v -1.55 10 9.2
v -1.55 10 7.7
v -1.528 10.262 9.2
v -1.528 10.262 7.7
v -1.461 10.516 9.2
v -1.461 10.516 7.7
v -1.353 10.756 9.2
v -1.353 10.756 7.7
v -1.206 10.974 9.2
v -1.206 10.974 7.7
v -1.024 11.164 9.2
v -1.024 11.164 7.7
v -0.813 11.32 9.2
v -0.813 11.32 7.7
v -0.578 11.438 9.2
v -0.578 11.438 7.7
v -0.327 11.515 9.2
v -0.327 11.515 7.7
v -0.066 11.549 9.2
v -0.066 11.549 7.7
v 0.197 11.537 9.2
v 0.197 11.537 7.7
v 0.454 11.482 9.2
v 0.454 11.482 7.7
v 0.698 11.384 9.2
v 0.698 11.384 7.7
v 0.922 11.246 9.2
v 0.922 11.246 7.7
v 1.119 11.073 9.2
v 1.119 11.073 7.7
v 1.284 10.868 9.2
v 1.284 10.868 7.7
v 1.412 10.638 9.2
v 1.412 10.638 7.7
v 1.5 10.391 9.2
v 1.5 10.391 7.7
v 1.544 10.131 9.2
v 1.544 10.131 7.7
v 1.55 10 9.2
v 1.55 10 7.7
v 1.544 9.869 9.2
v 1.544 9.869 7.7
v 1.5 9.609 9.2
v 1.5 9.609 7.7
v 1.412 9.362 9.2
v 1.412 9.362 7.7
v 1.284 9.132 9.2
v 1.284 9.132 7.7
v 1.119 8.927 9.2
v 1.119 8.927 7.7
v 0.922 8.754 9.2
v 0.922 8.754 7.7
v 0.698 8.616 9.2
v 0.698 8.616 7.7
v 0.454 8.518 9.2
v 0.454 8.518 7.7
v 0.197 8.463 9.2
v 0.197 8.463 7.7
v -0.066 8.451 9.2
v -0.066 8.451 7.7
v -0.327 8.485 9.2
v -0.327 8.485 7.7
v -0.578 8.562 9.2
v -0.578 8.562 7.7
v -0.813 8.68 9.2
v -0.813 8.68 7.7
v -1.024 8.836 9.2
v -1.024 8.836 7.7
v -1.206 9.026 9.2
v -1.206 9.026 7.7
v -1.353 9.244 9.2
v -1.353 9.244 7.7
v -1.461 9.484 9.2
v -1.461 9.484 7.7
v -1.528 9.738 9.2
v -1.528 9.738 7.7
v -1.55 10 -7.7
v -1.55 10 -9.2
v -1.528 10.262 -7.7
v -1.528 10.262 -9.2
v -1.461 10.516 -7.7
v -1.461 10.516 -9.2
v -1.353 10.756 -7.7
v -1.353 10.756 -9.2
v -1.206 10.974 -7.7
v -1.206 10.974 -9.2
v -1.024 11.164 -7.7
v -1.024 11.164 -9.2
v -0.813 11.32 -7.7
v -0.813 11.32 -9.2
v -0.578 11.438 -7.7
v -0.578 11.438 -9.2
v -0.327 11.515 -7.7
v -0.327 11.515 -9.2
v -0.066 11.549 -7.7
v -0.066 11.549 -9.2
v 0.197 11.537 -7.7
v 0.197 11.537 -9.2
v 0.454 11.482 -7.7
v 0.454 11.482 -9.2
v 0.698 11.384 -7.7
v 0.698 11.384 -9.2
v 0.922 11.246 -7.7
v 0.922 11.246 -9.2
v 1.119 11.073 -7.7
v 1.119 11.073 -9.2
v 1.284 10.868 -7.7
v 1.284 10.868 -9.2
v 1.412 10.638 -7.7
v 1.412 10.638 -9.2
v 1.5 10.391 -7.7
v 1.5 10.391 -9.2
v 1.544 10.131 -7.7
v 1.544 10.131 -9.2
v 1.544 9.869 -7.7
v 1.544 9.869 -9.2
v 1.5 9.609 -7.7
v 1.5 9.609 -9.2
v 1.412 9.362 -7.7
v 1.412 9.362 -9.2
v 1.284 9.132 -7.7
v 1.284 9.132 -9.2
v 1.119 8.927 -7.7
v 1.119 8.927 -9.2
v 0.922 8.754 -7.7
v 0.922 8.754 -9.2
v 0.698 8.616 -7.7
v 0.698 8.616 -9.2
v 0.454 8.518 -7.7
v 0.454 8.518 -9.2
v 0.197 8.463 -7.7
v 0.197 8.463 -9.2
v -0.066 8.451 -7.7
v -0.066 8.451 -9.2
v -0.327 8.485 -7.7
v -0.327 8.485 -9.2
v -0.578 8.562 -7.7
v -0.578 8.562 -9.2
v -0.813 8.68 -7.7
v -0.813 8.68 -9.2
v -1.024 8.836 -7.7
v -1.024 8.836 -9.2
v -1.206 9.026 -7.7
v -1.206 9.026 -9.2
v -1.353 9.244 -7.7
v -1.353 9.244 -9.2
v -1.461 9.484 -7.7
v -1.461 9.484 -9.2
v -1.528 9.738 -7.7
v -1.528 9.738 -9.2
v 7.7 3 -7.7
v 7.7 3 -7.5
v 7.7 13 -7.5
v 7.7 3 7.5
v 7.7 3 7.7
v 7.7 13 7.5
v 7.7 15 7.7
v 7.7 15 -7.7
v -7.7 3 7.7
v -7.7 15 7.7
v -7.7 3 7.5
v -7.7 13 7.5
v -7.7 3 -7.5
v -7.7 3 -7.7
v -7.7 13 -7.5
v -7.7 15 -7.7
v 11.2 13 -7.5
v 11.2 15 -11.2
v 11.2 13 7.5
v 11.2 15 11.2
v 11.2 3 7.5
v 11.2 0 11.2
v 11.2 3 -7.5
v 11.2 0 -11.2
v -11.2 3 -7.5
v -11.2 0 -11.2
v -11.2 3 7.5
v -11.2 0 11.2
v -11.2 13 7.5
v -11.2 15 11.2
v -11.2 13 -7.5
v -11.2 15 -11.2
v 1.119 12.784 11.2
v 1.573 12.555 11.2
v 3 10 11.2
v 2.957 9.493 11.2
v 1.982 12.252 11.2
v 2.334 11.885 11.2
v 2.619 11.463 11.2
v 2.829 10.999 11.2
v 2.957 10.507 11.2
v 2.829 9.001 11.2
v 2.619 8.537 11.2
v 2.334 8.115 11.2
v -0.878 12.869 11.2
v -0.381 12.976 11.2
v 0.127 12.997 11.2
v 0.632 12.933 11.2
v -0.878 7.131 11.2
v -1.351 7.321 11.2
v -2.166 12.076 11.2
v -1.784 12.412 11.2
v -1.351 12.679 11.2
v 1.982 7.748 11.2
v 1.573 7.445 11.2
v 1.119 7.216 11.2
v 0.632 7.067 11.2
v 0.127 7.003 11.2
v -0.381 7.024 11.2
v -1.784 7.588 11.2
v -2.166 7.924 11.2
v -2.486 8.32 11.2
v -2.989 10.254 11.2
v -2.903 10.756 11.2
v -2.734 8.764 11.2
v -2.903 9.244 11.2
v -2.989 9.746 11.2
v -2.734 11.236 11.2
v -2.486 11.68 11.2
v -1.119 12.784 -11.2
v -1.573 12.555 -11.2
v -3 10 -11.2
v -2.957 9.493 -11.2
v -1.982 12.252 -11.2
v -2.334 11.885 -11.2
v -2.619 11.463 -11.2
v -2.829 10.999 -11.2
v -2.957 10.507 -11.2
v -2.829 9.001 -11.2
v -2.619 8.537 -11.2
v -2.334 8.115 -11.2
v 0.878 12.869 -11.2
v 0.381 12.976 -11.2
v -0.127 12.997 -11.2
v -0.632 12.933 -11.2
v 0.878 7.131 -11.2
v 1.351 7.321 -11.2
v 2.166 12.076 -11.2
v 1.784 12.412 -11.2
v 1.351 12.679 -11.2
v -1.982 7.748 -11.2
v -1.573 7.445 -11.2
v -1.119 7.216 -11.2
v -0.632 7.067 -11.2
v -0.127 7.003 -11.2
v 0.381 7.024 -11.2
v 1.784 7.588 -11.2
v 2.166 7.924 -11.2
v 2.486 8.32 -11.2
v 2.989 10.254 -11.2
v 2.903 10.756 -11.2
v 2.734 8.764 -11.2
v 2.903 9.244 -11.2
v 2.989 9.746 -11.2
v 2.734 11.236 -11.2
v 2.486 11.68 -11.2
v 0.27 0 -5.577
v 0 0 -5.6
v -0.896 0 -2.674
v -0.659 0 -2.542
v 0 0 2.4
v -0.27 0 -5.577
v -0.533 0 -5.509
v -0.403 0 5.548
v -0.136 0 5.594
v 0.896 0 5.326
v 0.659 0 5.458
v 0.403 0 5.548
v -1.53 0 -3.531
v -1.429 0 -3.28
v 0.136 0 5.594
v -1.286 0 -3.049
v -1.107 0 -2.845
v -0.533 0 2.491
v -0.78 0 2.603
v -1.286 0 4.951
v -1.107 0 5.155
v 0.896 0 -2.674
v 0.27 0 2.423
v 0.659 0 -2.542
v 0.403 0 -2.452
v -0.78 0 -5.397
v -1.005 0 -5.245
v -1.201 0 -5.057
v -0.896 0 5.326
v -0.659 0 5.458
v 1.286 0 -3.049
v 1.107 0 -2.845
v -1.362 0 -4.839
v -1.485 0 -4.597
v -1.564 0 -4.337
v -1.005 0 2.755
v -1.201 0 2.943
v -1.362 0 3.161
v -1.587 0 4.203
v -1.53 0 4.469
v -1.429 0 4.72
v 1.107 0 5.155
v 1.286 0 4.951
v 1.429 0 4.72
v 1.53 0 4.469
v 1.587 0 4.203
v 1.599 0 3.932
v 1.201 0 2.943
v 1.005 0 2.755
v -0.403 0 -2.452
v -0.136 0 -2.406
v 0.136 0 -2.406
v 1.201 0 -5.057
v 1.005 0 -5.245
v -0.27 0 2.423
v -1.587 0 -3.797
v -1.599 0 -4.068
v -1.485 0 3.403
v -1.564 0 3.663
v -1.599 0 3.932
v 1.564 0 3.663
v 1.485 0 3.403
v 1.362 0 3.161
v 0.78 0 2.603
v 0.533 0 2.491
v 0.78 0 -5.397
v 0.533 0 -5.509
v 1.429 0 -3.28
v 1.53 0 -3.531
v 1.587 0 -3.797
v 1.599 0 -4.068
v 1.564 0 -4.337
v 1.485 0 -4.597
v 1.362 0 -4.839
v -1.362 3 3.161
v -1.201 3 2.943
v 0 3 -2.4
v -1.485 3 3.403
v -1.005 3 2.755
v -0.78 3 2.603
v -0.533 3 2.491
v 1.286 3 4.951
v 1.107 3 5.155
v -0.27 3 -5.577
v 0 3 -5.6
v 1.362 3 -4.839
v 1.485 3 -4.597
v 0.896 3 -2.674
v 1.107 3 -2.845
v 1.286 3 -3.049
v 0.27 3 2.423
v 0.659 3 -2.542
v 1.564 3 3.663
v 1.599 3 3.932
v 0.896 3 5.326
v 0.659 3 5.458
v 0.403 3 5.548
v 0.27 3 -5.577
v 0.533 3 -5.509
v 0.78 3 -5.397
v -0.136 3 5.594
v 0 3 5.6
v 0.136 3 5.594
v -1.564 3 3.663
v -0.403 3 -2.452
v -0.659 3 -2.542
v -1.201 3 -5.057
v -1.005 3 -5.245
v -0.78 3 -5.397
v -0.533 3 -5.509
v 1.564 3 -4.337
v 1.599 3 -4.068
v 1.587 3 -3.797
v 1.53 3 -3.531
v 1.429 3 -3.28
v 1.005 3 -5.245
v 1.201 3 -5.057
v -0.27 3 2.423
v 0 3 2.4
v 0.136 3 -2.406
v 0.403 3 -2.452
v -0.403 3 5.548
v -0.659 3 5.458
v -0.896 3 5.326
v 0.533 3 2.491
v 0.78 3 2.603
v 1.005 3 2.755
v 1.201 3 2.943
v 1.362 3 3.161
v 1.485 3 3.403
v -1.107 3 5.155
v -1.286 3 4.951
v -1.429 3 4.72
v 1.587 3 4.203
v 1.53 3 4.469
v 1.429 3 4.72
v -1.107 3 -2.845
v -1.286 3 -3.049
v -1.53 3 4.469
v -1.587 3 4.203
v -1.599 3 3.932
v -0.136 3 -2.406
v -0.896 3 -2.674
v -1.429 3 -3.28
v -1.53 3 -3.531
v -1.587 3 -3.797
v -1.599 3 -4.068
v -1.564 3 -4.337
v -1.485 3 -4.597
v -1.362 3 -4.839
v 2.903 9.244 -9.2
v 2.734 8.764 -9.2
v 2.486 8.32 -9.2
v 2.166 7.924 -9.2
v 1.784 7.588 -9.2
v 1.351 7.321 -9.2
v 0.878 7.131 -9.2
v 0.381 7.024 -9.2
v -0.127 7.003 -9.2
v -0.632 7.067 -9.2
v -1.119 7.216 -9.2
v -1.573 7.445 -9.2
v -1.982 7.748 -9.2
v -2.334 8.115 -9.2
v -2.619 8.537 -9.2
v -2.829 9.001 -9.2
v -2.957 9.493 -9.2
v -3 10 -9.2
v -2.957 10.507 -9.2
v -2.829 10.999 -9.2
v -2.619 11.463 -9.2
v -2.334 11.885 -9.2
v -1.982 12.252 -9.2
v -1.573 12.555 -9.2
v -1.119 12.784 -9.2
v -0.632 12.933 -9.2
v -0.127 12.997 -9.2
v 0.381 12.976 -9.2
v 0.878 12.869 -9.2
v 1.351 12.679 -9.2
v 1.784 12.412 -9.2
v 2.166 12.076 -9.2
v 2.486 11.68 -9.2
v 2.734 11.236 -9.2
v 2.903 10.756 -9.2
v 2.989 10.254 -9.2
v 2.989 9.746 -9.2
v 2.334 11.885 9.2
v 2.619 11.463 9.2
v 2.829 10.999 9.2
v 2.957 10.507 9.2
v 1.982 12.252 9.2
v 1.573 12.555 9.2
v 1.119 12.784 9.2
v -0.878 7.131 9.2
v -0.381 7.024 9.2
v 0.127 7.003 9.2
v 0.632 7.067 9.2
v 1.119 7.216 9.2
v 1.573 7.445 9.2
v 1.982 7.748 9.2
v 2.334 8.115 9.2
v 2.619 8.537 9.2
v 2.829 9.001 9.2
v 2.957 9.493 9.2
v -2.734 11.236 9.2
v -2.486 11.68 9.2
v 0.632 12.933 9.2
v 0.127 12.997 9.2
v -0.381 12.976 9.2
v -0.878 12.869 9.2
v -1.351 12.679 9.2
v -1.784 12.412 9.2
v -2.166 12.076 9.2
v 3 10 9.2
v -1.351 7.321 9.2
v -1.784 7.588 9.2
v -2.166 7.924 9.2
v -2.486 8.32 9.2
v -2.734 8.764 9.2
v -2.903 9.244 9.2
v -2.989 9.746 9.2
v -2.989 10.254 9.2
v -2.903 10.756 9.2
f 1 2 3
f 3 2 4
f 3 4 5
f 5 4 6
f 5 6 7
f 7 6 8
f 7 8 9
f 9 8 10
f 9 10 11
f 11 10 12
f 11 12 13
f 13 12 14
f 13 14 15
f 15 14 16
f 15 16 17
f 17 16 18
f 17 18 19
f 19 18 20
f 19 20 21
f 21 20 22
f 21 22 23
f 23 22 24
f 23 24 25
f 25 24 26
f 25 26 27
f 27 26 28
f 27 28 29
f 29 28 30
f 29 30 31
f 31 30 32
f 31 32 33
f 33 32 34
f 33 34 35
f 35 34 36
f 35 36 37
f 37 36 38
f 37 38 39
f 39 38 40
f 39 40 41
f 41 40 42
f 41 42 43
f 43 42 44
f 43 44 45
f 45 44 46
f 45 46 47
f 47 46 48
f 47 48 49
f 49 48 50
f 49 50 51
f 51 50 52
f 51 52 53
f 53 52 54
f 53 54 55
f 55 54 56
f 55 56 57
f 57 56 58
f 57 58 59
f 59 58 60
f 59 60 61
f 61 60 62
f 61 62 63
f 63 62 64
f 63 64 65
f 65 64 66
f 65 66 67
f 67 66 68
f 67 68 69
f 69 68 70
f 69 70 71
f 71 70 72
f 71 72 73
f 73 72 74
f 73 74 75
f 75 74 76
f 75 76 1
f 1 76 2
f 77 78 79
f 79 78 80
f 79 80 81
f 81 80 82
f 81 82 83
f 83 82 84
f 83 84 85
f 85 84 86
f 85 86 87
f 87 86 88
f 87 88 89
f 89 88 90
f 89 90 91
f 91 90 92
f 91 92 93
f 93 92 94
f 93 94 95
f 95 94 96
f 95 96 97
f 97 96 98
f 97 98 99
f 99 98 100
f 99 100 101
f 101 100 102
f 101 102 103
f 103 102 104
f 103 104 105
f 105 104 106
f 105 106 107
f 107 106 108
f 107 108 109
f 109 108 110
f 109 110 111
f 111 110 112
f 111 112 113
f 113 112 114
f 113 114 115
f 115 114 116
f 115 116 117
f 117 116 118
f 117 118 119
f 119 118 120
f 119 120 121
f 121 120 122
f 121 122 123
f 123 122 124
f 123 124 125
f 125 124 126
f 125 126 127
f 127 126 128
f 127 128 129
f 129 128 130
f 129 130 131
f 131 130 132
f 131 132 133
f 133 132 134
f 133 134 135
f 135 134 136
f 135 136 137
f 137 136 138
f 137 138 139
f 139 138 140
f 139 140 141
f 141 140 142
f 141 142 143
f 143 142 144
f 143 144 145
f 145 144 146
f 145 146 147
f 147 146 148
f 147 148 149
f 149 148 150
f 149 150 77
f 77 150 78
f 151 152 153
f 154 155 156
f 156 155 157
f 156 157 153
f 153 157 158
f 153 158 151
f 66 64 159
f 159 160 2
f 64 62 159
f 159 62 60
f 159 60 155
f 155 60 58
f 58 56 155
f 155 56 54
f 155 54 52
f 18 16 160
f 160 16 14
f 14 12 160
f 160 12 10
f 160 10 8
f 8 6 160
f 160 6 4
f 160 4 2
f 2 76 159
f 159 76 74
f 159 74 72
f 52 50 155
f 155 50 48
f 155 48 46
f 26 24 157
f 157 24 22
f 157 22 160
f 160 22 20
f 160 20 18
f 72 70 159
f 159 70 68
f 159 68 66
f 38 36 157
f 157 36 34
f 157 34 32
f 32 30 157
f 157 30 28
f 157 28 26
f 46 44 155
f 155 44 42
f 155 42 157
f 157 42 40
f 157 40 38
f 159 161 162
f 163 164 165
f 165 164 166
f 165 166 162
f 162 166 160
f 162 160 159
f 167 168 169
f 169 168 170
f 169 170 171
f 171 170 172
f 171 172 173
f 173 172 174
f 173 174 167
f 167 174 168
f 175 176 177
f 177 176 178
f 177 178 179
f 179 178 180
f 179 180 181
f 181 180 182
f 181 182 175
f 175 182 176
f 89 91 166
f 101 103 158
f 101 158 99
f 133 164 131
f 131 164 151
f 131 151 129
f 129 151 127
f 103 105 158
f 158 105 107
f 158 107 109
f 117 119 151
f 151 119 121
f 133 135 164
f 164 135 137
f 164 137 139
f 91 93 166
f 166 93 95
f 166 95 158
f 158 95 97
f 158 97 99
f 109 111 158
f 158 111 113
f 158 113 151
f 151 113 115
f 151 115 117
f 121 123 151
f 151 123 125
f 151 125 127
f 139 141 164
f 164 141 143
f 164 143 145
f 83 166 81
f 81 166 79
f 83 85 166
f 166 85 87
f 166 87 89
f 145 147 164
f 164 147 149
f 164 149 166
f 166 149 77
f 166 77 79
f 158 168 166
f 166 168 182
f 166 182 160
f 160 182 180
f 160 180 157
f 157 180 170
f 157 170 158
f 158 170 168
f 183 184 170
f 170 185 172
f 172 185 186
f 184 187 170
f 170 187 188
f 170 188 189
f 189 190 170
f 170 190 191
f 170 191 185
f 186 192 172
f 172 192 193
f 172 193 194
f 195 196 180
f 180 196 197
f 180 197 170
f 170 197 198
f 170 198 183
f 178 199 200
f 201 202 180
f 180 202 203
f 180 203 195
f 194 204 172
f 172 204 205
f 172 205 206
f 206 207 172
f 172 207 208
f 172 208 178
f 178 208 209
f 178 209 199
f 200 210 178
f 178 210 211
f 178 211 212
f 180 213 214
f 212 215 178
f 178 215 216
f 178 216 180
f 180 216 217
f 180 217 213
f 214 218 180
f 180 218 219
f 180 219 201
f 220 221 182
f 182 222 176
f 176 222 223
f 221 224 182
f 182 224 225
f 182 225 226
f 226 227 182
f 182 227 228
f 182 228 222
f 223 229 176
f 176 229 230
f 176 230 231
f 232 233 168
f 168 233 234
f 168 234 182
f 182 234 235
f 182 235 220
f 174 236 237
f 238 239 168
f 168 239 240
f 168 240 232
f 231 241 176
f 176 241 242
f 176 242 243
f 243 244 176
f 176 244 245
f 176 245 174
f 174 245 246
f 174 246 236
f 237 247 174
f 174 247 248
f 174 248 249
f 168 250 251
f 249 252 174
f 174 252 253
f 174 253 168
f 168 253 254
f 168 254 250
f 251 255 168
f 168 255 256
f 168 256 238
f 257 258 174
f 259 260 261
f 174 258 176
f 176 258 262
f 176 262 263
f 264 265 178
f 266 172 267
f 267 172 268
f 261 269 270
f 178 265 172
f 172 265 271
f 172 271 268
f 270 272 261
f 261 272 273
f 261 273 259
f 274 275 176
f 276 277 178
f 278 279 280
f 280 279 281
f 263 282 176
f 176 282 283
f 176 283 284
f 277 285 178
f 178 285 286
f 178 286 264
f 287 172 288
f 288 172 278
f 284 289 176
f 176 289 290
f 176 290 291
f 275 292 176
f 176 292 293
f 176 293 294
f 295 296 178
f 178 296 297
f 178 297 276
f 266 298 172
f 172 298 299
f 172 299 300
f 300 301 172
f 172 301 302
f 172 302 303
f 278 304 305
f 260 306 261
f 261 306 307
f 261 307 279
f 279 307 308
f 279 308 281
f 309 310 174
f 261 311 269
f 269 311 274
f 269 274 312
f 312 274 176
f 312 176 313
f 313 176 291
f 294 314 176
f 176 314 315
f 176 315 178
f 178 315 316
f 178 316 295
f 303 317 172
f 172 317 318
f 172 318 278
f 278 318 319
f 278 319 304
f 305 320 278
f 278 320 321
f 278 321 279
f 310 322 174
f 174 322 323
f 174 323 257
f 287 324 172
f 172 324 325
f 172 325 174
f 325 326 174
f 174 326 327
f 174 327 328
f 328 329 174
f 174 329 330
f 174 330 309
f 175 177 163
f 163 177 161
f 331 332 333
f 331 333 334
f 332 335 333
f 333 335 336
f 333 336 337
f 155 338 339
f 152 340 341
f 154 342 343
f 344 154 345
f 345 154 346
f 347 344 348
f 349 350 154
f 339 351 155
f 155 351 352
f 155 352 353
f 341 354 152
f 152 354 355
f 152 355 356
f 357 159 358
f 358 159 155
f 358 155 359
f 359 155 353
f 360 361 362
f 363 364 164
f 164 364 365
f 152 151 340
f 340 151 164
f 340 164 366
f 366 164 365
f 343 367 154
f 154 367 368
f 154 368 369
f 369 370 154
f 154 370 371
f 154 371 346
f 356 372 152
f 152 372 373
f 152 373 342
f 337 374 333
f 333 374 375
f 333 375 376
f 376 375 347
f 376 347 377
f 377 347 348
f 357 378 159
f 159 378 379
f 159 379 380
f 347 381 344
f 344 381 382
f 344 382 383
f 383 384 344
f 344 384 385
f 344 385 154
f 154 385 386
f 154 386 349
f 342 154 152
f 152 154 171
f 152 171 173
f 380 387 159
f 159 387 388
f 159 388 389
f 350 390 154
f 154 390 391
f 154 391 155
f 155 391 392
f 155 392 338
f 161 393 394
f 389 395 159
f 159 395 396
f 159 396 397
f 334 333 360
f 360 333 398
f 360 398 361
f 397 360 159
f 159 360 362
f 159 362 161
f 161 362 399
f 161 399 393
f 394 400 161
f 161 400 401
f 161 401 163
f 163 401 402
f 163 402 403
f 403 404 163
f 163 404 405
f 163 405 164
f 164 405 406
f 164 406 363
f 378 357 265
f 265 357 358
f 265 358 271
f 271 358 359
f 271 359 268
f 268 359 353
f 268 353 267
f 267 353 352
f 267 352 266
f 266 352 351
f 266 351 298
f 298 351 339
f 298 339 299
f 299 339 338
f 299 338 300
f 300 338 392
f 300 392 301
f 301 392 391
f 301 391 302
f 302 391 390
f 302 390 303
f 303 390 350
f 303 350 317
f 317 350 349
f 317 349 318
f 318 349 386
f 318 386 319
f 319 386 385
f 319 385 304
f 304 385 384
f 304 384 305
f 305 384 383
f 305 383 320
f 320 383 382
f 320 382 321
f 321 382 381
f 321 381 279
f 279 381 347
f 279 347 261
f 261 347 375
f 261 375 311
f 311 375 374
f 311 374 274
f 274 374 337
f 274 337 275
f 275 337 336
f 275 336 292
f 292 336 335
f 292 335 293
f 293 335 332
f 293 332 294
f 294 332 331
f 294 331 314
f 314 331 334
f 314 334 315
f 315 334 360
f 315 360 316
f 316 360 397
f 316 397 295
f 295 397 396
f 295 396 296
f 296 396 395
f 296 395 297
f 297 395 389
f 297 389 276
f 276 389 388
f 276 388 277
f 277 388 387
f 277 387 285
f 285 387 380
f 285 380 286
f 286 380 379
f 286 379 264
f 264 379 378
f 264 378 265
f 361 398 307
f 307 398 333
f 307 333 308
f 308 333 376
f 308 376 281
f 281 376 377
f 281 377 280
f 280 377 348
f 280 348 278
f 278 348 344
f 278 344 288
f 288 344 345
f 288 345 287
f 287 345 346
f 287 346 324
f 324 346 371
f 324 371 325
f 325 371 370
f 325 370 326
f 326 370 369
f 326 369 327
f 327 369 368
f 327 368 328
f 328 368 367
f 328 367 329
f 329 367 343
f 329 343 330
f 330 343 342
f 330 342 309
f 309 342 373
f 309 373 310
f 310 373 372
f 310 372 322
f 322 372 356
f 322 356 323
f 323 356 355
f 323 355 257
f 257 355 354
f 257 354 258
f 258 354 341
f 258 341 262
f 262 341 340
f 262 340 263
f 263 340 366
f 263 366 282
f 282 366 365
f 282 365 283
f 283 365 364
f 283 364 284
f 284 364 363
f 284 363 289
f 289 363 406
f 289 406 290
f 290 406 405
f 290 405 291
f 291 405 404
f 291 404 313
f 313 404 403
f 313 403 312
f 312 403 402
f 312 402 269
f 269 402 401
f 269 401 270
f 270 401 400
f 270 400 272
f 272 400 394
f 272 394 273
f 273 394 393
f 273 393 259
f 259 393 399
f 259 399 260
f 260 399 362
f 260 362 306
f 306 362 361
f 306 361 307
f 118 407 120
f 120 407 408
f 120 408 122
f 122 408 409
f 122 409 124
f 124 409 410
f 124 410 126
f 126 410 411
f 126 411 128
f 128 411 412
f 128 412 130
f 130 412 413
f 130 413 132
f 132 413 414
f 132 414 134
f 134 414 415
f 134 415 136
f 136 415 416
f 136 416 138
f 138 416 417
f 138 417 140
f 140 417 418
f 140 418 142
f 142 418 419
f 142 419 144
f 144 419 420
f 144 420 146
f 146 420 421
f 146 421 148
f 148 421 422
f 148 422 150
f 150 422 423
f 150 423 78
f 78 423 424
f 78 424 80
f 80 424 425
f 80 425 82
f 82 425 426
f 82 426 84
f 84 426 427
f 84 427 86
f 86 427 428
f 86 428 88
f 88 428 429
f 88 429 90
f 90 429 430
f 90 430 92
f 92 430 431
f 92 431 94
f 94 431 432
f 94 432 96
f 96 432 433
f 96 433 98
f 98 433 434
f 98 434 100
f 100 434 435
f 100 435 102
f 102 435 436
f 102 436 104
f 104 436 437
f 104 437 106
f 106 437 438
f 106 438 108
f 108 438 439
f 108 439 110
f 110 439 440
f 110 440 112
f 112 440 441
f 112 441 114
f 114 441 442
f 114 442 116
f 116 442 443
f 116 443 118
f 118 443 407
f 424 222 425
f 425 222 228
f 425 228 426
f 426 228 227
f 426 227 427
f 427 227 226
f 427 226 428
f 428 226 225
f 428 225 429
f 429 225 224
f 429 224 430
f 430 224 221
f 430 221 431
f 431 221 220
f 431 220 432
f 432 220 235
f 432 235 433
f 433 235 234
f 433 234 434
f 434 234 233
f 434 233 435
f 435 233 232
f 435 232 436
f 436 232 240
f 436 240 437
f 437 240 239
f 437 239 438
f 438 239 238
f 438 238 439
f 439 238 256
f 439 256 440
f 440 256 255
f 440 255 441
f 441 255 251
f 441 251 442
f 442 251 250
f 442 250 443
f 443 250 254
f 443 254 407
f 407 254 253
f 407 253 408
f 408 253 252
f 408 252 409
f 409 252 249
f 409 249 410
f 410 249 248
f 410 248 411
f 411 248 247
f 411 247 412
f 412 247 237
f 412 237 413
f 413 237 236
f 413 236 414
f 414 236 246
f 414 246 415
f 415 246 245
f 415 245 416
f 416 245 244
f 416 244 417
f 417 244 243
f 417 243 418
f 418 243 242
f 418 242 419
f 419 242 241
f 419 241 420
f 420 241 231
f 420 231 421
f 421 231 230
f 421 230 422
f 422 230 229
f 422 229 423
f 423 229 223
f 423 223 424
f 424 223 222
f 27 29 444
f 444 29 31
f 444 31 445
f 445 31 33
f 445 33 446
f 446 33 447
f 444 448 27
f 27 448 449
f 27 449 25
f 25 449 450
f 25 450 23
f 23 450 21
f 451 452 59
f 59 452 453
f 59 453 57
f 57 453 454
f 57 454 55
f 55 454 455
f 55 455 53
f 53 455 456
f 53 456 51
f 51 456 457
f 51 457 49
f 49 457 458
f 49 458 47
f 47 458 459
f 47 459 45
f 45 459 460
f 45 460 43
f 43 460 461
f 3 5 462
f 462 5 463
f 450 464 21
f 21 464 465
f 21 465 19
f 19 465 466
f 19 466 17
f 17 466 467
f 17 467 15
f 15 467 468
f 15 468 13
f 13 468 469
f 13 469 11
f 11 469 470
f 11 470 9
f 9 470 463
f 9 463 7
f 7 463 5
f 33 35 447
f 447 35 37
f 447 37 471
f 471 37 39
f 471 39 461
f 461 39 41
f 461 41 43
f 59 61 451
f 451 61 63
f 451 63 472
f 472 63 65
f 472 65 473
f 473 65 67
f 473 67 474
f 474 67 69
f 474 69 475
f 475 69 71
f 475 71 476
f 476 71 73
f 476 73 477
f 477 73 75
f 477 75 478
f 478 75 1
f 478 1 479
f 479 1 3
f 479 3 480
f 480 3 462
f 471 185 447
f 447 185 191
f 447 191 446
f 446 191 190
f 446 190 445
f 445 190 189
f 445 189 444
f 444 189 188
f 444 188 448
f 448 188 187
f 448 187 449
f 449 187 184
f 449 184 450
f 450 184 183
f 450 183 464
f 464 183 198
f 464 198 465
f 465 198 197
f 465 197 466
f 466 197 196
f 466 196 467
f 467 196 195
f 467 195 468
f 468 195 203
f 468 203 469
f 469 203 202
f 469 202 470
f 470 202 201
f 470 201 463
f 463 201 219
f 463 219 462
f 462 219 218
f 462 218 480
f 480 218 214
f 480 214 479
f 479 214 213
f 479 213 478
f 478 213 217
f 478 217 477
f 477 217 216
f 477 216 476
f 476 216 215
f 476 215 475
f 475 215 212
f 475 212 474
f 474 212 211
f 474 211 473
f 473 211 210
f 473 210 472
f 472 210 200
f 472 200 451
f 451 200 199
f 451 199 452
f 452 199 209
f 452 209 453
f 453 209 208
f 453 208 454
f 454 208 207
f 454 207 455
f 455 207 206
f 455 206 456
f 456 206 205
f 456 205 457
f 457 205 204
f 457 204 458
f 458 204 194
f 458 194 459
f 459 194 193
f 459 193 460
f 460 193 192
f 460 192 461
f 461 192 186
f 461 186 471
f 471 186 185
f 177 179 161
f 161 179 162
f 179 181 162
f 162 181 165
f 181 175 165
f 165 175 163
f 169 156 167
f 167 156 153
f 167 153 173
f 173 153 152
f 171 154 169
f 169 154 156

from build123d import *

# Parameters (mm, degrees)
SKETCH_1_W          = 15.4
SKETCH_1_H          = 22.4
EXTRUDE_2_DEPTH     = 3
SKETCH_1_4_W        = 15.4
SKETCH_1_4_H        = 3.5
EXTRUDE_3_DEPTH     = 5
EXTRUDE_3_2_DEPTH   = 5
SKETCH_1_5_W        = 22.4
SKETCH_1_5_H        = 22.4
SKETCH_1_5_W_2      = 15.4
SKETCH_1_5_H_2      = 15.4
EXTRUDE_4_DEPTH     = 15
SKETCH_3_R          = 1.55
CUT_EXTRUDE_2_DEPTH = 37.042752392
SKETCH_9_R          = 1.6
CUT_EXTRUDE_6_DEPTH = 22.81467396
SKETCH_10_R         = 3
CUT_EXTRUDE_7_DEPTH = 2
CUT_EXTRUDE_START   = -2
SKETCH_11_R         = 3
CUT_EXTRUDE_8_DEPTH = 2
CUT_EXTRUDE_9_DEPTH = 30.192464781


with BuildPart() as part:
    # 草图1 → 凸台-拉伸2 (new body)
    with BuildSketch(Plane(origin=(0, 0, 0), x_dir=(1, 0, 0), z_dir=(0, 1, 0))):
        Rectangle(SKETCH_1_W, SKETCH_1_H)
    extrude(amount=EXTRUDE_2_DEPTH)



with BuildPart() as body_2:
    # 草图1<4> → 凸台-拉伸3 (new body)
    with BuildSketch(Plane(origin=(0, 0, 0), x_dir=(1, 0, 0), z_dir=(0, 1, 0))):
        with Locations((0, 9.45)):
            Rectangle(SKETCH_1_4_W, SKETCH_1_4_H)
    extrude(amount=EXTRUDE_3_DEPTH)


with BuildPart() as body_3:
    # 草图1<4> → Extrude 3 2 (new body)
    with BuildSketch(Plane(origin=(0, 0, 0), x_dir=(1, 0, 0), z_dir=(0, 1, 0))):
        with Locations((0, -9.45)):
            Rectangle(SKETCH_1_4_W, SKETCH_1_4_H)
    extrude(amount=EXTRUDE_3_2_DEPTH)


with BuildPart() as part_1:
    add(part.part)

    add(body_2.part)  # 凸台-拉伸4 merges body 2

    add(body_3.part)  # 凸台-拉伸4 merges body 3
    # 草图1<5> → 凸台-拉伸4 (add)
    with BuildSketch(Plane(origin=(0, 0, 0), x_dir=(1, 0, 0), z_dir=(0, 1, 0))):
        Rectangle(SKETCH_1_5_W, SKETCH_1_5_H)
        Rectangle(SKETCH_1_5_W_2, SKETCH_1_5_H_2, mode=Mode.SUBTRACT)
    extrude(amount=EXTRUDE_4_DEPTH)

    # 草图3 → 切除-拉伸2 (cut, through all)
    with BuildSketch(Plane(origin=(0, 0, -19.6), x_dir=(-1, 0, 0), z_dir=(0, 0, -1))):
        with Locations((0, 10)):
            Circle(SKETCH_3_R)
    extrude(amount=-CUT_EXTRUDE_2_DEPTH, mode=Mode.SUBTRACT)

    # 草图9 → 切除-拉伸6 (cut, through all)
    with BuildSketch(Plane.XZ):
        with Locations((0, 4)):
            Circle(SKETCH_9_R)
        with Locations((0, -4)):
            Circle(SKETCH_9_R)
    extrude(amount=-CUT_EXTRUDE_6_DEPTH, mode=Mode.SUBTRACT)

    # 草图10 → 切除-拉伸7 (cut)
    with BuildSketch(Plane(origin=(0, 0, -11.2), x_dir=(-1, 0, 0), z_dir=(0, 0, -1))):
        with Locations((0, 10)):
            Circle(SKETCH_10_R)
    extrude(amount=-CUT_EXTRUDE_7_DEPTH, mode=Mode.SUBTRACT)

    # 草图11 → 切除-拉伸8 (cut)
    with BuildSketch(Plane.XY.offset(11.2).offset(CUT_EXTRUDE_START)):
        with Locations((0, 10)):
            Circle(SKETCH_11_R)
    extrude(amount=CUT_EXTRUDE_8_DEPTH, mode=Mode.SUBTRACT)

    # 草图8 → 切除-拉伸9 (cut, through all)
    with BuildSketch(Plane.ZY.offset(11.2)):
        Polygon((7.5, 10), (7.5, 3), (0, 3), (-7.5, 3), (-7.5, 13), (7.5, 13), align=None)
    extrude(amount=-CUT_EXTRUDE_9_DEPTH, mode=Mode.SUBTRACT)


solid = part_1.part
